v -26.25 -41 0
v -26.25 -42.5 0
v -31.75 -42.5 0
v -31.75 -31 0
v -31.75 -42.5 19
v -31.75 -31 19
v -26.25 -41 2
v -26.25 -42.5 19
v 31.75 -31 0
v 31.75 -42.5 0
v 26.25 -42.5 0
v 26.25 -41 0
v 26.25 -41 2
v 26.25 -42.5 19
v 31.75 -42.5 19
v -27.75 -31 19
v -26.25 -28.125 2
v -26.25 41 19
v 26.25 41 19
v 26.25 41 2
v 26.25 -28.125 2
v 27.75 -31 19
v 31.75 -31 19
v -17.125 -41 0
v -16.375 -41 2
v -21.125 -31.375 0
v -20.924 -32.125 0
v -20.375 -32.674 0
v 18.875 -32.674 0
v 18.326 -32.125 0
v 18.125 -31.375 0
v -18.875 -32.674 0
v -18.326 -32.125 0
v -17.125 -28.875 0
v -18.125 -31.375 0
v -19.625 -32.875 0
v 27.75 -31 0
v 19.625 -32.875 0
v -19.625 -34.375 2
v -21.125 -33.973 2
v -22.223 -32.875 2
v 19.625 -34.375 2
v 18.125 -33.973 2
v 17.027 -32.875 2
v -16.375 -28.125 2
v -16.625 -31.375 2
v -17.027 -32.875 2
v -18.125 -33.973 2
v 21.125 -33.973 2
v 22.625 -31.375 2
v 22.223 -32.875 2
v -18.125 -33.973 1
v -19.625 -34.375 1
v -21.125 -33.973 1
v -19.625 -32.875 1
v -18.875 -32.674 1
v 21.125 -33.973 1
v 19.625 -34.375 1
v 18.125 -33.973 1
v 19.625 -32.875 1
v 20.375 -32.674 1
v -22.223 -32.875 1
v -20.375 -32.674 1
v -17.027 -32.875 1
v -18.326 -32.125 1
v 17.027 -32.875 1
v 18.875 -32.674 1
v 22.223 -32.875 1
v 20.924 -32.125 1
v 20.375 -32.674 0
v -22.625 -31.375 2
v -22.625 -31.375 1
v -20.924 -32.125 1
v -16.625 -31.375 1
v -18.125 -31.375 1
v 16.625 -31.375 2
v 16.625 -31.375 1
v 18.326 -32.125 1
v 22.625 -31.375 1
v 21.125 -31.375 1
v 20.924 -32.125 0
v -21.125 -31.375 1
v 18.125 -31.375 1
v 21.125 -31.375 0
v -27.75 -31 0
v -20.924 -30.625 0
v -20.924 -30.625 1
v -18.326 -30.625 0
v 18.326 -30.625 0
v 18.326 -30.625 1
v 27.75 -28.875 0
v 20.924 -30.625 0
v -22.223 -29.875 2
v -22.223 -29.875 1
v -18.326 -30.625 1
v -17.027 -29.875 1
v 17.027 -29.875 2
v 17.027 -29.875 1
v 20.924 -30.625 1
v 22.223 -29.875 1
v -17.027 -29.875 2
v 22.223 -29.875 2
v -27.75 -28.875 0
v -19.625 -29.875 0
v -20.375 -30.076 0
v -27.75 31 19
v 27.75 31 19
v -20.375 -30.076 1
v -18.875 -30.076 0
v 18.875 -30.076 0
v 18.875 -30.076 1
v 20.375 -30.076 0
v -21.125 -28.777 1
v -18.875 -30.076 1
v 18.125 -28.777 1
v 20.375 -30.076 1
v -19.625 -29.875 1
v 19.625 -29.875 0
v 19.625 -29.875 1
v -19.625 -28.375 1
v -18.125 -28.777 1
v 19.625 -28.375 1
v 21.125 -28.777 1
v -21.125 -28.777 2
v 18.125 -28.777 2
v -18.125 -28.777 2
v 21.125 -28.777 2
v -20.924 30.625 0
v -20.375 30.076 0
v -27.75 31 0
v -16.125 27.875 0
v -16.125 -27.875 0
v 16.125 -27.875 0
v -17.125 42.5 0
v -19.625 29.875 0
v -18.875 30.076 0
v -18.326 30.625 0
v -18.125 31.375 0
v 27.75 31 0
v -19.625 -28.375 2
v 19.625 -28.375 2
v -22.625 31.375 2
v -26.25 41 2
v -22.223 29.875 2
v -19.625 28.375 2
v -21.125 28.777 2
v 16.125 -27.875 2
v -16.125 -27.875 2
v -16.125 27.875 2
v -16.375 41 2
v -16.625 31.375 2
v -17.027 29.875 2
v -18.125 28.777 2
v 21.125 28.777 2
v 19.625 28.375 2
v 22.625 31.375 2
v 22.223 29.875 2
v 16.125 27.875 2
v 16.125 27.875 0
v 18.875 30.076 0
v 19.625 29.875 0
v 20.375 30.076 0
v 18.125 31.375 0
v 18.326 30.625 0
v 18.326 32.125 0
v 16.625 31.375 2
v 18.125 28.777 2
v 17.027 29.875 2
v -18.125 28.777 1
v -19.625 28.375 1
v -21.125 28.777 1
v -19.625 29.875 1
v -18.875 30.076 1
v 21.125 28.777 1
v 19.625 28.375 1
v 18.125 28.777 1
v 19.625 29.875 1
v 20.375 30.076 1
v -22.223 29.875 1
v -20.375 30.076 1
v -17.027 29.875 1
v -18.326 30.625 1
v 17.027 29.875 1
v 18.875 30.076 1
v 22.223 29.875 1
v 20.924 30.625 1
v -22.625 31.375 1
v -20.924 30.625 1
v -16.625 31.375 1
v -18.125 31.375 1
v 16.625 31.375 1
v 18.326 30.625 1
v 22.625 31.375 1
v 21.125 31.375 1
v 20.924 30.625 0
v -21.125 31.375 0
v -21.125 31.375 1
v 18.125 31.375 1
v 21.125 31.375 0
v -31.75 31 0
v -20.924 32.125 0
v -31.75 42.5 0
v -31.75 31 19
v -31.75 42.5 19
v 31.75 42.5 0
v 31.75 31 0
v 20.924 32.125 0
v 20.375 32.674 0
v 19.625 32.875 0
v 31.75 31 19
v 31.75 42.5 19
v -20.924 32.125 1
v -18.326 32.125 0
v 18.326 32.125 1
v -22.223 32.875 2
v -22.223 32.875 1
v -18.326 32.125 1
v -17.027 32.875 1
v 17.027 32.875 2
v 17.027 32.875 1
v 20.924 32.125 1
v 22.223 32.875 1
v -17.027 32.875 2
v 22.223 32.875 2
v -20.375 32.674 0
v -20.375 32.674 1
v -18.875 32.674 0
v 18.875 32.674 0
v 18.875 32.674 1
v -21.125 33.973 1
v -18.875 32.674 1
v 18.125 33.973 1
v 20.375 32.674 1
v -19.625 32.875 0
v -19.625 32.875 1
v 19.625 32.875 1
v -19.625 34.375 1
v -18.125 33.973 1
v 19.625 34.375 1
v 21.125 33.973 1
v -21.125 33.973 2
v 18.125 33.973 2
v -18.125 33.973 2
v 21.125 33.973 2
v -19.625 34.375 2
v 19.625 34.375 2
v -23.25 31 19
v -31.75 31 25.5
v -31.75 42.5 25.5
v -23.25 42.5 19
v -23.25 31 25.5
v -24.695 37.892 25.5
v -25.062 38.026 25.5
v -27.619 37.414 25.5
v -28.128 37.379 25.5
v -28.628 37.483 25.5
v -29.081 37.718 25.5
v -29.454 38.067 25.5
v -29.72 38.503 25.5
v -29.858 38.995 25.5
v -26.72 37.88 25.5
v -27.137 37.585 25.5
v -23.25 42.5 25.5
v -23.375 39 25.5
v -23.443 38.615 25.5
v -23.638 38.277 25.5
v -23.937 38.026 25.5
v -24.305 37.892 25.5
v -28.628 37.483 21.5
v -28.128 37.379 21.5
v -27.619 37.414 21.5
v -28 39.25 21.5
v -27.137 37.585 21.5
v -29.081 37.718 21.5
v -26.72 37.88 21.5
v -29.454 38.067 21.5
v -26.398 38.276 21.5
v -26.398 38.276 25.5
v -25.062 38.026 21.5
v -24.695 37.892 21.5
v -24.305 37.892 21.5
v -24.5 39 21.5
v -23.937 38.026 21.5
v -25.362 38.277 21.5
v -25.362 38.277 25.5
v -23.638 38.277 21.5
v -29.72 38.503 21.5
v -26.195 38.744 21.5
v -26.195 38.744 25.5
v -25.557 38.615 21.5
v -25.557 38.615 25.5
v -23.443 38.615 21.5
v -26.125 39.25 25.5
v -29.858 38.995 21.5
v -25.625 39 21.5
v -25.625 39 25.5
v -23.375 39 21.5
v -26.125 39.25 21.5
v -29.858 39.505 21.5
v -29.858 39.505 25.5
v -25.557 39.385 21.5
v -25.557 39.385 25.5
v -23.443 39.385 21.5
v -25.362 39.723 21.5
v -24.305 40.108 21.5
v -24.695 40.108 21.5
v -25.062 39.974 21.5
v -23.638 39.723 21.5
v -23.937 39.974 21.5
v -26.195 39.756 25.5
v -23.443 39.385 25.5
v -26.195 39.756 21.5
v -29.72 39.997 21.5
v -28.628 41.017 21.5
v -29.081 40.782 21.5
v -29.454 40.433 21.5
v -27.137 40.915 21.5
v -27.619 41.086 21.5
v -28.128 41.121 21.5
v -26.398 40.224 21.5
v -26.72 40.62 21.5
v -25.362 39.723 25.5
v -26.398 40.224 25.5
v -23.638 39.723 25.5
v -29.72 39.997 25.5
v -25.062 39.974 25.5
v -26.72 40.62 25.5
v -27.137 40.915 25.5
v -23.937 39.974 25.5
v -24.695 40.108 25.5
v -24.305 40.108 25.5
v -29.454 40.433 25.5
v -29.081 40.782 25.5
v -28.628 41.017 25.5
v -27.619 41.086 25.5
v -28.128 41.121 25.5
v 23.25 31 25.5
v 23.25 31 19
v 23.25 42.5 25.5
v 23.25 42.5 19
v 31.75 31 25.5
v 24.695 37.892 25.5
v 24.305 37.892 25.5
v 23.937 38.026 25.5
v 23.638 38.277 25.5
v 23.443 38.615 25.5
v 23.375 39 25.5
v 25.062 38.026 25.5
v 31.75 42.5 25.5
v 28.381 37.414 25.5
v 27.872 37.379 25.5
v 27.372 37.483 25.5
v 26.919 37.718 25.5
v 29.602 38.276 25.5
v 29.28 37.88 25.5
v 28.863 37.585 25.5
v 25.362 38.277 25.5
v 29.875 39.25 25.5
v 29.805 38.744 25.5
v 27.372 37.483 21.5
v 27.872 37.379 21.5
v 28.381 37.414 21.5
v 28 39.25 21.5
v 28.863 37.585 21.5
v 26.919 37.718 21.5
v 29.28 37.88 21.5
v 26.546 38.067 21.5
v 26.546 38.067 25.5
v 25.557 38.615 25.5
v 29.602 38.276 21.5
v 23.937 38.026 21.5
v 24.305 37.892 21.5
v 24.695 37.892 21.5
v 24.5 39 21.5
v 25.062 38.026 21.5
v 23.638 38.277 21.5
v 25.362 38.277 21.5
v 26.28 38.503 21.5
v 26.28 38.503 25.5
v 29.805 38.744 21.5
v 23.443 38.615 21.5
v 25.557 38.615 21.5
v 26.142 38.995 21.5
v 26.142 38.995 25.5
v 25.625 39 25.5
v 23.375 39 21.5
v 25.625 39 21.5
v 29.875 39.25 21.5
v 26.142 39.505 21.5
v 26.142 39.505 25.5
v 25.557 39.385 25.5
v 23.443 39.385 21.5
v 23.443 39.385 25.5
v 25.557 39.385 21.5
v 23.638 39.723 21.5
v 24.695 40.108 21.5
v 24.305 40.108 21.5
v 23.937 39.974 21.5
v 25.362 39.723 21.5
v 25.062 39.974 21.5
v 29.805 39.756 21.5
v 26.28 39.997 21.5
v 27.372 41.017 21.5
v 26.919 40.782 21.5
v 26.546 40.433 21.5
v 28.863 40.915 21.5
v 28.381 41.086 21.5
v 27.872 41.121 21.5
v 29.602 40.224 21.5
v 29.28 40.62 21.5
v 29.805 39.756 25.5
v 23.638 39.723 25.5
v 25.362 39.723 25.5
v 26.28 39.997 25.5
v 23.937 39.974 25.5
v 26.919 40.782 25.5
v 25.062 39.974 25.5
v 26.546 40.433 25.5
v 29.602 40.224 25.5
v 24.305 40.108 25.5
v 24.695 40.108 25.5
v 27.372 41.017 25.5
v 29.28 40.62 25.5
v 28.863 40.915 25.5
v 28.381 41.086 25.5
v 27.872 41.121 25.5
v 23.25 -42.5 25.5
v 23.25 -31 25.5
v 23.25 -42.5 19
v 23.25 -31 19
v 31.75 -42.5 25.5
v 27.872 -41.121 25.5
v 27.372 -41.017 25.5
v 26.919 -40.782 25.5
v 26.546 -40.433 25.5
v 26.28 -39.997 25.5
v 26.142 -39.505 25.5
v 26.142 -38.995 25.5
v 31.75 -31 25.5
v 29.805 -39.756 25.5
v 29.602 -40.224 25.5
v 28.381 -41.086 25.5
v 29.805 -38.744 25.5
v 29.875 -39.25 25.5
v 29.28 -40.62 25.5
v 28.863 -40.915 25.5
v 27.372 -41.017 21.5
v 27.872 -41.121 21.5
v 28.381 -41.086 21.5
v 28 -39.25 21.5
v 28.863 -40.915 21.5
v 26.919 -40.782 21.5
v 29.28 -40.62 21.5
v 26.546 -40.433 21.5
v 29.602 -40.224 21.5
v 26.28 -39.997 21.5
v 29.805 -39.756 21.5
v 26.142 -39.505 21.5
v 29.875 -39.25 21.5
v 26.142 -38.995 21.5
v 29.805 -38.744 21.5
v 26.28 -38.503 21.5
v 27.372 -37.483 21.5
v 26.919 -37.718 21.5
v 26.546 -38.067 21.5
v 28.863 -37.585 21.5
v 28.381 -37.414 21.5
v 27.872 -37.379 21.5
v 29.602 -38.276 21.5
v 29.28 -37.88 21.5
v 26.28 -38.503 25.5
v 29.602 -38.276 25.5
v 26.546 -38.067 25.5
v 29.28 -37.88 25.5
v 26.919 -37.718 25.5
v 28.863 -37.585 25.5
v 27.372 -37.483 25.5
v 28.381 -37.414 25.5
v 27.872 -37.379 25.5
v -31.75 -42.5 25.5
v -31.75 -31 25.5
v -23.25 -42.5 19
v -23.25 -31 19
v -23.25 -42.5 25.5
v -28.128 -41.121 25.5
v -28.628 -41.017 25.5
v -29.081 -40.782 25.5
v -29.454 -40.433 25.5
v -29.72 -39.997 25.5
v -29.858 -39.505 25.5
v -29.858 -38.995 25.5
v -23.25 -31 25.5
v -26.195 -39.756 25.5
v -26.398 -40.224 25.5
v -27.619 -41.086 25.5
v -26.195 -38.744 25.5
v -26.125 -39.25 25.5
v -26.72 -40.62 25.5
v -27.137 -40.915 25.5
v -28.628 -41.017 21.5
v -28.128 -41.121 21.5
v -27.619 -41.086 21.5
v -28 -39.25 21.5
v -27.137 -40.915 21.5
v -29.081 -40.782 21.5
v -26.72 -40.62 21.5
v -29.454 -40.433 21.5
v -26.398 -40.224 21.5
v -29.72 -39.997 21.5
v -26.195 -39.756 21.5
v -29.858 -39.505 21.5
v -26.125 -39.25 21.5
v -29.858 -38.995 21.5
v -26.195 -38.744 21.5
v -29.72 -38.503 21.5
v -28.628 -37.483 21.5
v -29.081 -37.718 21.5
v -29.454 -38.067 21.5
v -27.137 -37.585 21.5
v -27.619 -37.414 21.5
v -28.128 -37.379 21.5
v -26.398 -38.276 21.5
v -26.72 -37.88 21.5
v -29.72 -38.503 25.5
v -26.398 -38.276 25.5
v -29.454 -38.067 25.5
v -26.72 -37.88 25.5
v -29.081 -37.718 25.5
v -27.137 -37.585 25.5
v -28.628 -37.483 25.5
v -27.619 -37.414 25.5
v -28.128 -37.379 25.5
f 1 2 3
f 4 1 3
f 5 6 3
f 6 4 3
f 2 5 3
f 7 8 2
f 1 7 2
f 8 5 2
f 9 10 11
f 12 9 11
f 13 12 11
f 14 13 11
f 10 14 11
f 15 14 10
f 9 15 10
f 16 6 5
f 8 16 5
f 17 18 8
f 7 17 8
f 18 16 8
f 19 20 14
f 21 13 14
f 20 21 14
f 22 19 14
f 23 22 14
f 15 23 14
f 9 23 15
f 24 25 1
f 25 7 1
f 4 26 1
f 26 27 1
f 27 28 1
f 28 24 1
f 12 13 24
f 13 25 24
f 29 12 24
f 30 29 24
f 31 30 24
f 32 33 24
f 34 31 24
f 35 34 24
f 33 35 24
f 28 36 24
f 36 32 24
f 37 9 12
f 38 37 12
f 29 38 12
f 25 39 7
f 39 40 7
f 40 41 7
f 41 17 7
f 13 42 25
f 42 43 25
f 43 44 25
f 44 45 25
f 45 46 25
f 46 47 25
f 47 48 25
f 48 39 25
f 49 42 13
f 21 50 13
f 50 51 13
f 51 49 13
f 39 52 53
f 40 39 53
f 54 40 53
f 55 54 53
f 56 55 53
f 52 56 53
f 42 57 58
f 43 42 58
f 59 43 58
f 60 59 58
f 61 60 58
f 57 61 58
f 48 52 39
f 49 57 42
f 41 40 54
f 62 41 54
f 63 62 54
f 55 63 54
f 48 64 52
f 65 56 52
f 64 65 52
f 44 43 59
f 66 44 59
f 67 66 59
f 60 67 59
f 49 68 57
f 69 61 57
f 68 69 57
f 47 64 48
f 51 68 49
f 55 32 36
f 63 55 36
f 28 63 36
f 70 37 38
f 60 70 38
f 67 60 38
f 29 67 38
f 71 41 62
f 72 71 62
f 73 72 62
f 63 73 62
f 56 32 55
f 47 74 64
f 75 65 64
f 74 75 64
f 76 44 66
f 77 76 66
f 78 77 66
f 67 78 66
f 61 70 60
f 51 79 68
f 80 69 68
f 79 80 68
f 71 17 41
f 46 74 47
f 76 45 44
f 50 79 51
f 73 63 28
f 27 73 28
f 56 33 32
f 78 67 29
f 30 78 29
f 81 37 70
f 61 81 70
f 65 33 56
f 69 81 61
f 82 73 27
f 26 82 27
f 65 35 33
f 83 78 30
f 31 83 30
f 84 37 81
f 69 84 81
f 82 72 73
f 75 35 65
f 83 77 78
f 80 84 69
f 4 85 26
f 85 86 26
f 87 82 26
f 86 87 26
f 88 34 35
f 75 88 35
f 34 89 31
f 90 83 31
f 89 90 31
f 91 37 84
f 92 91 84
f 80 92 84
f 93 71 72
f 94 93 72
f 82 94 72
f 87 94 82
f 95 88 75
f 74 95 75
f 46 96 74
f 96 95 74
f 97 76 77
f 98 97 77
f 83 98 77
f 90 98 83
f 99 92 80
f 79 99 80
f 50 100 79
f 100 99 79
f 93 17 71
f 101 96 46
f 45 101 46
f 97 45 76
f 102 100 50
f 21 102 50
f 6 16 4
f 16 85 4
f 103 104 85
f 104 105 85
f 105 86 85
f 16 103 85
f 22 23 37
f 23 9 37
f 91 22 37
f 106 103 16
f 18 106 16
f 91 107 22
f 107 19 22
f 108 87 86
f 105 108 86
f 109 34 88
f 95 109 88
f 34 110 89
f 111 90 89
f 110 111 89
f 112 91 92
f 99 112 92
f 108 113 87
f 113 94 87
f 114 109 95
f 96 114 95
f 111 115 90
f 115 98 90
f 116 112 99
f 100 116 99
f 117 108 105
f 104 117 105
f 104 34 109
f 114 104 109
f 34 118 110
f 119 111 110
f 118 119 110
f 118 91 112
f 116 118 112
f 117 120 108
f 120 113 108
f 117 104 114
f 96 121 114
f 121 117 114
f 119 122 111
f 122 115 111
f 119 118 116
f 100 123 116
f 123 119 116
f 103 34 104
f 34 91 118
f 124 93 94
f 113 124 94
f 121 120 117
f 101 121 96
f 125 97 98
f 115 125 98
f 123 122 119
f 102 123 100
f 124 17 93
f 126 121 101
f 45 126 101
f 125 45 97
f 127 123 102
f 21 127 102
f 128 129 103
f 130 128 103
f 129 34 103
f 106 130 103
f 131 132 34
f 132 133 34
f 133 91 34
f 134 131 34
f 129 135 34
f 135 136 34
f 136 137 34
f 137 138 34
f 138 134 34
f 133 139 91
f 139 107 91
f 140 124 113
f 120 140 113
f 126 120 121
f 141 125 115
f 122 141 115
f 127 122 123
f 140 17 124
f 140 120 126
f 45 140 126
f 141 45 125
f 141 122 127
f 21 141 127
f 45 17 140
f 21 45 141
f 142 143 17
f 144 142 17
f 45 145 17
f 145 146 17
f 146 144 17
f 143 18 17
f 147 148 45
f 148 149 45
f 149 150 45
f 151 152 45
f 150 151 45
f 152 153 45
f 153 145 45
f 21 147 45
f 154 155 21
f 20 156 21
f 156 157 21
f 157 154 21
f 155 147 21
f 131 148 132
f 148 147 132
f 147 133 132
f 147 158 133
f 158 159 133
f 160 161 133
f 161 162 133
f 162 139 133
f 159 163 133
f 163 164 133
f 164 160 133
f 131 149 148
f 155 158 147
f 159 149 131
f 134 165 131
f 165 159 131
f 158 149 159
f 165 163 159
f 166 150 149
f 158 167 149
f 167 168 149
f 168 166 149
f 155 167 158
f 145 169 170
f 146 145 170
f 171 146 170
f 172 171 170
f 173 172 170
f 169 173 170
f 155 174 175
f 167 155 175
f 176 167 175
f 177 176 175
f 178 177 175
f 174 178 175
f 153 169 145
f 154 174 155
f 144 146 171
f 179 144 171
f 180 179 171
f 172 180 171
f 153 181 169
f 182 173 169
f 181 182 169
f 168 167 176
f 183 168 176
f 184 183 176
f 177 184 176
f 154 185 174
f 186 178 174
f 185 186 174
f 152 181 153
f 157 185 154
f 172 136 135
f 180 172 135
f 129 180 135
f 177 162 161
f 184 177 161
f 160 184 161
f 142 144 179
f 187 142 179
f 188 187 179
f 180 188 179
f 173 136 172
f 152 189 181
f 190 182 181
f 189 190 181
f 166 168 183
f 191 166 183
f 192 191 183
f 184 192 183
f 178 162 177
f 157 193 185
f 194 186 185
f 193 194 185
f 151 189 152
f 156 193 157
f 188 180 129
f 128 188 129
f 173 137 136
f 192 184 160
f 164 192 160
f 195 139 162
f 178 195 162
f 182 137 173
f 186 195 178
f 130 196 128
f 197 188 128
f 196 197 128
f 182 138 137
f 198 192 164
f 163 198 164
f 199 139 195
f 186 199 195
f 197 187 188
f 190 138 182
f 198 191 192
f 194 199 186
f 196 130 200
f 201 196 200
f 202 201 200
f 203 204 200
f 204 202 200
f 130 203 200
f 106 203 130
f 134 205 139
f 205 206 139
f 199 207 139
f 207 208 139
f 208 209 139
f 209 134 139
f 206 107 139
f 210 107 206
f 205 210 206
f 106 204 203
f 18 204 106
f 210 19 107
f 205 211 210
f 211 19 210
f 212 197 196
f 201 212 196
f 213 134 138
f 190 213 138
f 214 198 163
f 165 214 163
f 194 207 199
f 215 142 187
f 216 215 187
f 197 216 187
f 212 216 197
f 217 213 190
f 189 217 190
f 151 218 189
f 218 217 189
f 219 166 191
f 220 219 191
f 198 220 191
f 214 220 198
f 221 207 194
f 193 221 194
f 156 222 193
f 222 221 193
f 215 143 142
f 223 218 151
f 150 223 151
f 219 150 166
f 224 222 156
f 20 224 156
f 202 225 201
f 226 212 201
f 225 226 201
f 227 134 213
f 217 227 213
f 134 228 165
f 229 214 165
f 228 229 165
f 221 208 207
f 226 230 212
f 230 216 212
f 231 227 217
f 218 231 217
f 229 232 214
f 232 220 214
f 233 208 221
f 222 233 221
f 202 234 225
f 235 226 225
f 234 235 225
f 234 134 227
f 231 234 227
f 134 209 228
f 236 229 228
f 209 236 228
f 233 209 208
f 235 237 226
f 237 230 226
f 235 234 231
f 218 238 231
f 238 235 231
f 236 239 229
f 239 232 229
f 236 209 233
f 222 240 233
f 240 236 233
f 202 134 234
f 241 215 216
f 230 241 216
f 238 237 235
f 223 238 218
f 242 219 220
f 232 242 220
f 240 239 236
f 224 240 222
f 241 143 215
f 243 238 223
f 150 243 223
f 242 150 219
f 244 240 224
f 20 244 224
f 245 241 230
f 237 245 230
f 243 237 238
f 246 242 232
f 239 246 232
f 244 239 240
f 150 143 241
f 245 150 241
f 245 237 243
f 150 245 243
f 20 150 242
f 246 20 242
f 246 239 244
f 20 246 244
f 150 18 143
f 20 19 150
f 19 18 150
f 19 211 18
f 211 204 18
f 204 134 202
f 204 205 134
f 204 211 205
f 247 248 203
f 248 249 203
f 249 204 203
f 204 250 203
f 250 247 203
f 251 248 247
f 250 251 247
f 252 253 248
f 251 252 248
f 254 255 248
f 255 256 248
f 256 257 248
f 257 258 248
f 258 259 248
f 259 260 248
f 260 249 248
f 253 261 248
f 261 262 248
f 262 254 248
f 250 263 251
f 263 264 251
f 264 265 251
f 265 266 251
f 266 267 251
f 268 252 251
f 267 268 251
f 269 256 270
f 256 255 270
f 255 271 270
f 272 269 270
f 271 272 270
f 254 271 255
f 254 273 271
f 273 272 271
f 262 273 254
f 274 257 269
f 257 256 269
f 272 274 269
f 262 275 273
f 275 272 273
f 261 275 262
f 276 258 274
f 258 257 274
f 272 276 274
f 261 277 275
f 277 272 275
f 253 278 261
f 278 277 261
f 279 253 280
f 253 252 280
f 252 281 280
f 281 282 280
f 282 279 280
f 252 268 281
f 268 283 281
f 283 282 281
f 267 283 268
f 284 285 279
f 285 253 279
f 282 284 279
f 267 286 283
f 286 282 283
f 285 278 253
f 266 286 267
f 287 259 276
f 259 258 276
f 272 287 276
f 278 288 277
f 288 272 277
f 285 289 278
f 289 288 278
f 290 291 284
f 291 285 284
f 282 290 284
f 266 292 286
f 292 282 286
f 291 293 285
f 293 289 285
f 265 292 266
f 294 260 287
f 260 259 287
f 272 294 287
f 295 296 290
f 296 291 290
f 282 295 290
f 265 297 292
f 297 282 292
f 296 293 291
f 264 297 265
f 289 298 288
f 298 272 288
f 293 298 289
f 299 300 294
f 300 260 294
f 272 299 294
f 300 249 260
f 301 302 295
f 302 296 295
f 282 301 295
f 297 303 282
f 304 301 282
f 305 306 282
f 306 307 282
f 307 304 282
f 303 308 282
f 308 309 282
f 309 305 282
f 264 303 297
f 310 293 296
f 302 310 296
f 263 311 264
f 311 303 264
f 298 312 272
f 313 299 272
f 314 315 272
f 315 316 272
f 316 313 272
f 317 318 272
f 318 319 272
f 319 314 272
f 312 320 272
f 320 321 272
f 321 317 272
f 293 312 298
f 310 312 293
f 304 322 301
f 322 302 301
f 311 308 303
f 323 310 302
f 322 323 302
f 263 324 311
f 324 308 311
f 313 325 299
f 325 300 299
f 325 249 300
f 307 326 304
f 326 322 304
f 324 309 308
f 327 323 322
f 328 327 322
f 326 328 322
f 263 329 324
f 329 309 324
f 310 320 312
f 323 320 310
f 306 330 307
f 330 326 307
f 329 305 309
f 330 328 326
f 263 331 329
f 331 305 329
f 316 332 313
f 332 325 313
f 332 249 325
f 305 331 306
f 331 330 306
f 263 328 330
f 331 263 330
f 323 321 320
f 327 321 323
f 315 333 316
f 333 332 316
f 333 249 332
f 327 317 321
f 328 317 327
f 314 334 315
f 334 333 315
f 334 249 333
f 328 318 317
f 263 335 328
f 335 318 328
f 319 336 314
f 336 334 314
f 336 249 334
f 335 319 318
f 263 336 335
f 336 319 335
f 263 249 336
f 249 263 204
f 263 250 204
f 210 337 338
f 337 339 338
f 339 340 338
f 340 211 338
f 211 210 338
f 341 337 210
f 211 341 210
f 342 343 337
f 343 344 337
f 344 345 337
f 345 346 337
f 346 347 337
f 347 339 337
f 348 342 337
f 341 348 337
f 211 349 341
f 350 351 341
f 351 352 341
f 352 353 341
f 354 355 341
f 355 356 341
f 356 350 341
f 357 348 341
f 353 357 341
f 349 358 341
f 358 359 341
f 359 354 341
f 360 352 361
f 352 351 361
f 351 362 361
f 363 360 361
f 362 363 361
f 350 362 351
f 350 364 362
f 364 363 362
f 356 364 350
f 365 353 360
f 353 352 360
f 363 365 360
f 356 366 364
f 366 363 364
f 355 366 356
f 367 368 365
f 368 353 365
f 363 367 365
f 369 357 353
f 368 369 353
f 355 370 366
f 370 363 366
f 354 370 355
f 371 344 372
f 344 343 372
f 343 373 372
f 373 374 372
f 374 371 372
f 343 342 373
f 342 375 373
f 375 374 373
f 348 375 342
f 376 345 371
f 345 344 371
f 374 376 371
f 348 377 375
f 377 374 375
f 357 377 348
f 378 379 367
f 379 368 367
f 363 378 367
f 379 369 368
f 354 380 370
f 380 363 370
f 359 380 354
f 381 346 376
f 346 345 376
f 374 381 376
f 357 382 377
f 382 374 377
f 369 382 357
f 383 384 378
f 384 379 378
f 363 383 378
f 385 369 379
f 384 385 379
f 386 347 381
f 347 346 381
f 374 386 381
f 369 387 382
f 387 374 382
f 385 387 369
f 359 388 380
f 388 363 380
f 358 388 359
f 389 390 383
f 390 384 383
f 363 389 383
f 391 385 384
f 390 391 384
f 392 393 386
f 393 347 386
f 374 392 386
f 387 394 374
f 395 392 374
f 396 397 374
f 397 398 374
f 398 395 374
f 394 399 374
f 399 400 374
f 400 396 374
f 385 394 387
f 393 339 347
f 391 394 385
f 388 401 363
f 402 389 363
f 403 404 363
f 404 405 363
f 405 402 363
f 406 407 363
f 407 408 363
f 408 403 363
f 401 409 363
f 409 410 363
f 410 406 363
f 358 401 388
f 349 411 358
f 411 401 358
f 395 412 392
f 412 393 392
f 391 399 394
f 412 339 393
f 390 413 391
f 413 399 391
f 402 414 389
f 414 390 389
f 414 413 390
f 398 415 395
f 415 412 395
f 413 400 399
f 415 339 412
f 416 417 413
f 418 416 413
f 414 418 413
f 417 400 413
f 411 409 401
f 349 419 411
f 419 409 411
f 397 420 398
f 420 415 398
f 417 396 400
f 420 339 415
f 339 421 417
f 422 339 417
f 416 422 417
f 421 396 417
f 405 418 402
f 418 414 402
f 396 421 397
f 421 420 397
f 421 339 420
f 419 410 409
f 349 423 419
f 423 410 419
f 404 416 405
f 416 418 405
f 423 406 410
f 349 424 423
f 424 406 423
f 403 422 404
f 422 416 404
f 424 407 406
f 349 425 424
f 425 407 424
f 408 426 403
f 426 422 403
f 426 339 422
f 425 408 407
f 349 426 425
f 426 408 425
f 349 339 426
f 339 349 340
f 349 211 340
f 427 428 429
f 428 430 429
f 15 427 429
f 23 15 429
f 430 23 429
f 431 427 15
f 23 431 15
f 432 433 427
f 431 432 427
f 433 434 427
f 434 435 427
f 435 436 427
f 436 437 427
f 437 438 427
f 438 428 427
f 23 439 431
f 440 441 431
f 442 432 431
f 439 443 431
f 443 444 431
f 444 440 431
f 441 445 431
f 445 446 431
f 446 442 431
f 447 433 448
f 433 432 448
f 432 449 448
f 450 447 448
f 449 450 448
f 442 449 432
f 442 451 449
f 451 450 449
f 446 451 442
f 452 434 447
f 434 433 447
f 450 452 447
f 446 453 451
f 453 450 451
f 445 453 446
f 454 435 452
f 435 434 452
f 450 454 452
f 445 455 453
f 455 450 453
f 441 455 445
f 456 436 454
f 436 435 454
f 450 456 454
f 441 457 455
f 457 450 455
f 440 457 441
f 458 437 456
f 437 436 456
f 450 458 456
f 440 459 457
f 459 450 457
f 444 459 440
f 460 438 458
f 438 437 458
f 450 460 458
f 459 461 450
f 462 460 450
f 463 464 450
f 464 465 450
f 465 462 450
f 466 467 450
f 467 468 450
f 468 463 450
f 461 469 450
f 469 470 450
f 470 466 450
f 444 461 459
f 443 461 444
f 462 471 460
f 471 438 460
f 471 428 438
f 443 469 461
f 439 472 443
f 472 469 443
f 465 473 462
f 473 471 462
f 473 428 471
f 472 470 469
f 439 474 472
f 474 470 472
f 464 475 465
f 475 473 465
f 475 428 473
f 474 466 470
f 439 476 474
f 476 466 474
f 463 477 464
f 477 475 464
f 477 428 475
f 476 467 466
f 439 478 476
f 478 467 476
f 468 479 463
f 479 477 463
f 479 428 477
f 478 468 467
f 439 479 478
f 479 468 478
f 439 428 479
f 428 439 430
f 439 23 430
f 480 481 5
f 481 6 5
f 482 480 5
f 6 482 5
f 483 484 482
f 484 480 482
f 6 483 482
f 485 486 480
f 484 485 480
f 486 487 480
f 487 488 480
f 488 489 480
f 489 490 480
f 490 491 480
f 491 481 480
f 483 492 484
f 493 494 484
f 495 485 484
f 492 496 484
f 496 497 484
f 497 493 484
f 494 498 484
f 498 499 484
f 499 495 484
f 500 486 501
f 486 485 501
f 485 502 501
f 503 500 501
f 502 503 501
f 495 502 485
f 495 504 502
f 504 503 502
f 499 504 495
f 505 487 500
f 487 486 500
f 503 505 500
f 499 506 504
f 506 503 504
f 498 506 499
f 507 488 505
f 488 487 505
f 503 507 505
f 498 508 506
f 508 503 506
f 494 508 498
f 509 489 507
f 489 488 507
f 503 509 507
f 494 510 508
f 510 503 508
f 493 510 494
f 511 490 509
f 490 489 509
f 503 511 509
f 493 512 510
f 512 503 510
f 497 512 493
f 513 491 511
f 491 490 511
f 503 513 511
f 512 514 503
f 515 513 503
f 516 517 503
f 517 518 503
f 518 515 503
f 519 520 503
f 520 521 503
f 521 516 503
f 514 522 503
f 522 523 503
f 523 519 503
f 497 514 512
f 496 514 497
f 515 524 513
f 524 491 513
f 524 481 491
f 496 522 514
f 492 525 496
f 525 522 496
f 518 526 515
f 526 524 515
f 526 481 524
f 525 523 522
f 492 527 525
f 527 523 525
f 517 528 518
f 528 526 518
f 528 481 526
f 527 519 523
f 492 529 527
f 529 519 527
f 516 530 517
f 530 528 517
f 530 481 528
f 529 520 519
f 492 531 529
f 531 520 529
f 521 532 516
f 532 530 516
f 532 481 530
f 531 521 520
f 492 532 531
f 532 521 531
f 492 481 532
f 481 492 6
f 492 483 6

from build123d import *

# Parameters (mm, degrees)
SKETCH1_W           = 52.5
SKETCH1_H           = 82
SKETCH1_R           = 3
SKETCH1_W_2         = 32.25
SKETCH1_H_2         = 55.75
BOSS_EXTRUDE1_DEPTH = 2
SKETCH1_6_R         = 3
SKETCH1_6_R_2       = 1.5
BOSS_EXTRUDE4_DEPTH = 1
BOSS_EXTRUDE2_DEPTH = 19
BOSS_EXTRUDE3_START = 19
SKETCH1_5_W         = 3
SKETCH1_5_H         = 10
SKETCH1_5_H_2       = 1.5
SKETCH1_5_W_2       = 4
SKETCH1_5_H_3       = 11.5
BOSS_EXTRUDE3_DEPTH = 6.5
SKETCH7_R           = 1.125
SKETCH7_R_2         = 1.875
CUT_EXTRUDE6_DEPTH  = 4


with BuildPart() as part:
    # Sketch1 → Boss-Extrude1 (new body)
    with BuildSketch(Plane.XY):
        Rectangle(SKETCH1_W, SKETCH1_H)
        with Locations((19.625, 31.375)):
            Circle(SKETCH1_R, mode=Mode.SUBTRACT)
        with Locations((-19.625, 31.375)):
            Circle(SKETCH1_R, mode=Mode.SUBTRACT)
        with Locations((19.625, -31.375)):
            Circle(SKETCH1_R, mode=Mode.SUBTRACT)
        with Locations((-19.625, -31.375)):
            Circle(SKETCH1_R, mode=Mode.SUBTRACT)
        Rectangle(SKETCH1_W_2, SKETCH1_H_2, mode=Mode.SUBTRACT)
    extrude(amount=BOSS_EXTRUDE1_DEPTH)

    # Sketch1<6> → Boss-Extrude4 (add)
    # profile 1 of 4: a face of its own
    with BuildSketch(Plane.XY):
        with Locations((-19.625, 31.375)):
            Circle(SKETCH1_6_R)
        with Locations((-19.625, 31.375)):
            Circle(SKETCH1_6_R_2, mode=Mode.SUBTRACT)
    # profile 2 of 4: a face of its own
    with BuildSketch(Plane.XY):
        with Locations((19.625, 31.375)):
            Circle(SKETCH1_6_R)
        with Locations((19.625, 31.375)):
            Circle(SKETCH1_6_R_2, mode=Mode.SUBTRACT)
    # profile 3 of 4: a face of its own
    with BuildSketch(Plane.XY):
        with Locations((-19.625, -31.375)):
            Circle(SKETCH1_6_R)
        with Locations((-19.625, -31.375)):
            Circle(SKETCH1_6_R_2, mode=Mode.SUBTRACT)
    # profile 4 of 4: a face of its own
    with BuildSketch(Plane.XY):
        with Locations((19.625, -31.375)):
            Circle(SKETCH1_6_R)
        with Locations((19.625, -31.375)):
            Circle(SKETCH1_6_R_2, mode=Mode.SUBTRACT)
    extrude(amount=BOSS_EXTRUDE4_DEPTH)

    # Sketch1<4> → Boss-Extrude2 (add)
    with BuildSketch(Plane.XY):
        Polygon((-31.75, 42.5), (-31.75, 31), (-27.75, 31), (-27.75, -31), (-31.75, -31), (-31.75, -42.5), (-26.25, -42.5), (-26.25, 41), (26.25, 41), (26.25, -42.5), (31.75, -42.5), (31.75, -31), (27.75, -31), (27.75, 31), (31.75, 31), (31.75, 42.5), align=None)
    extrude(amount=BOSS_EXTRUDE2_DEPTH)


with BuildPart() as body_2:
    # Sketch1<5> → Boss-Extrude3 (new body)
    with BuildSketch(Plane.XY.offset(BOSS_EXTRUDE3_START)):
        Polygon((-23.25, 42.5), (-27.75, 42.5), (-27.75, 31), (-26.25, 31), (-26.25, 41), (-23.25, 41), align=None)
        with Locations((-24.75, 36)):
            Rectangle(SKETCH1_5_W, SKETCH1_5_H)
        with Locations((24.75, 36)):
            Rectangle(SKETCH1_5_W, SKETCH1_5_H)
        Polygon((27.75, 42.5), (23.25, 42.5), (23.25, 41), (26.25, 41), (26.25, 31), (27.75, 31), align=None)
        Polygon((27.75, -42.5), (27.75, -31), (26.25, -31), (26.25, -41), (26.25, -42.5), align=None)
        with Locations((24.75, -36)):
            Rectangle(SKETCH1_5_W, SKETCH1_5_H)
        with Locations((24.75, -41.75)):
            Rectangle(SKETCH1_5_W, SKETCH1_5_H_2)
        with Locations((-24.75, -41.75)):
            Rectangle(SKETCH1_5_W, SKETCH1_5_H_2)
        with Locations((-24.75, -36)):
            Rectangle(SKETCH1_5_W, SKETCH1_5_H)
        Polygon((-26.25, -31), (-27.75, -31), (-27.75, -42.5), (-26.25, -42.5), (-26.25, -41), align=None)
        with Locations((-29.75, 36.75)):
            Rectangle(SKETCH1_5_W_2, SKETCH1_5_H_3)
        with Locations((29.75, 36.75)):
            Rectangle(SKETCH1_5_W_2, SKETCH1_5_H_3)
        with Locations((29.75, -36.75)):
            Rectangle(SKETCH1_5_W_2, SKETCH1_5_H_3)
        with Locations((-29.75, -36.75)):
            Rectangle(SKETCH1_5_W_2, SKETCH1_5_H_3)
    extrude(amount=BOSS_EXTRUDE3_DEPTH)

    # Sketch7 → Cut-Extrude6 (cut)
    with BuildSketch(Plane.XY.offset(25.5)):
        with Locations((-24.5, 39)):
            Circle(SKETCH7_R)
        with Locations((-28, 39.25)):
            Circle(SKETCH7_R_2)
        with Locations((28, 39.25)):
            Circle(SKETCH7_R_2)
        with Locations((-28, -39.25)):
            Circle(SKETCH7_R_2)
        with Locations((28, -39.25)):
            Circle(SKETCH7_R_2)
        with Locations((24.5, 39)):
            Circle(SKETCH7_R)
    extrude(amount=-CUT_EXTRUDE6_DEPTH, mode=Mode.SUBTRACT)


solid = Compound([part.part, body_2.part])
